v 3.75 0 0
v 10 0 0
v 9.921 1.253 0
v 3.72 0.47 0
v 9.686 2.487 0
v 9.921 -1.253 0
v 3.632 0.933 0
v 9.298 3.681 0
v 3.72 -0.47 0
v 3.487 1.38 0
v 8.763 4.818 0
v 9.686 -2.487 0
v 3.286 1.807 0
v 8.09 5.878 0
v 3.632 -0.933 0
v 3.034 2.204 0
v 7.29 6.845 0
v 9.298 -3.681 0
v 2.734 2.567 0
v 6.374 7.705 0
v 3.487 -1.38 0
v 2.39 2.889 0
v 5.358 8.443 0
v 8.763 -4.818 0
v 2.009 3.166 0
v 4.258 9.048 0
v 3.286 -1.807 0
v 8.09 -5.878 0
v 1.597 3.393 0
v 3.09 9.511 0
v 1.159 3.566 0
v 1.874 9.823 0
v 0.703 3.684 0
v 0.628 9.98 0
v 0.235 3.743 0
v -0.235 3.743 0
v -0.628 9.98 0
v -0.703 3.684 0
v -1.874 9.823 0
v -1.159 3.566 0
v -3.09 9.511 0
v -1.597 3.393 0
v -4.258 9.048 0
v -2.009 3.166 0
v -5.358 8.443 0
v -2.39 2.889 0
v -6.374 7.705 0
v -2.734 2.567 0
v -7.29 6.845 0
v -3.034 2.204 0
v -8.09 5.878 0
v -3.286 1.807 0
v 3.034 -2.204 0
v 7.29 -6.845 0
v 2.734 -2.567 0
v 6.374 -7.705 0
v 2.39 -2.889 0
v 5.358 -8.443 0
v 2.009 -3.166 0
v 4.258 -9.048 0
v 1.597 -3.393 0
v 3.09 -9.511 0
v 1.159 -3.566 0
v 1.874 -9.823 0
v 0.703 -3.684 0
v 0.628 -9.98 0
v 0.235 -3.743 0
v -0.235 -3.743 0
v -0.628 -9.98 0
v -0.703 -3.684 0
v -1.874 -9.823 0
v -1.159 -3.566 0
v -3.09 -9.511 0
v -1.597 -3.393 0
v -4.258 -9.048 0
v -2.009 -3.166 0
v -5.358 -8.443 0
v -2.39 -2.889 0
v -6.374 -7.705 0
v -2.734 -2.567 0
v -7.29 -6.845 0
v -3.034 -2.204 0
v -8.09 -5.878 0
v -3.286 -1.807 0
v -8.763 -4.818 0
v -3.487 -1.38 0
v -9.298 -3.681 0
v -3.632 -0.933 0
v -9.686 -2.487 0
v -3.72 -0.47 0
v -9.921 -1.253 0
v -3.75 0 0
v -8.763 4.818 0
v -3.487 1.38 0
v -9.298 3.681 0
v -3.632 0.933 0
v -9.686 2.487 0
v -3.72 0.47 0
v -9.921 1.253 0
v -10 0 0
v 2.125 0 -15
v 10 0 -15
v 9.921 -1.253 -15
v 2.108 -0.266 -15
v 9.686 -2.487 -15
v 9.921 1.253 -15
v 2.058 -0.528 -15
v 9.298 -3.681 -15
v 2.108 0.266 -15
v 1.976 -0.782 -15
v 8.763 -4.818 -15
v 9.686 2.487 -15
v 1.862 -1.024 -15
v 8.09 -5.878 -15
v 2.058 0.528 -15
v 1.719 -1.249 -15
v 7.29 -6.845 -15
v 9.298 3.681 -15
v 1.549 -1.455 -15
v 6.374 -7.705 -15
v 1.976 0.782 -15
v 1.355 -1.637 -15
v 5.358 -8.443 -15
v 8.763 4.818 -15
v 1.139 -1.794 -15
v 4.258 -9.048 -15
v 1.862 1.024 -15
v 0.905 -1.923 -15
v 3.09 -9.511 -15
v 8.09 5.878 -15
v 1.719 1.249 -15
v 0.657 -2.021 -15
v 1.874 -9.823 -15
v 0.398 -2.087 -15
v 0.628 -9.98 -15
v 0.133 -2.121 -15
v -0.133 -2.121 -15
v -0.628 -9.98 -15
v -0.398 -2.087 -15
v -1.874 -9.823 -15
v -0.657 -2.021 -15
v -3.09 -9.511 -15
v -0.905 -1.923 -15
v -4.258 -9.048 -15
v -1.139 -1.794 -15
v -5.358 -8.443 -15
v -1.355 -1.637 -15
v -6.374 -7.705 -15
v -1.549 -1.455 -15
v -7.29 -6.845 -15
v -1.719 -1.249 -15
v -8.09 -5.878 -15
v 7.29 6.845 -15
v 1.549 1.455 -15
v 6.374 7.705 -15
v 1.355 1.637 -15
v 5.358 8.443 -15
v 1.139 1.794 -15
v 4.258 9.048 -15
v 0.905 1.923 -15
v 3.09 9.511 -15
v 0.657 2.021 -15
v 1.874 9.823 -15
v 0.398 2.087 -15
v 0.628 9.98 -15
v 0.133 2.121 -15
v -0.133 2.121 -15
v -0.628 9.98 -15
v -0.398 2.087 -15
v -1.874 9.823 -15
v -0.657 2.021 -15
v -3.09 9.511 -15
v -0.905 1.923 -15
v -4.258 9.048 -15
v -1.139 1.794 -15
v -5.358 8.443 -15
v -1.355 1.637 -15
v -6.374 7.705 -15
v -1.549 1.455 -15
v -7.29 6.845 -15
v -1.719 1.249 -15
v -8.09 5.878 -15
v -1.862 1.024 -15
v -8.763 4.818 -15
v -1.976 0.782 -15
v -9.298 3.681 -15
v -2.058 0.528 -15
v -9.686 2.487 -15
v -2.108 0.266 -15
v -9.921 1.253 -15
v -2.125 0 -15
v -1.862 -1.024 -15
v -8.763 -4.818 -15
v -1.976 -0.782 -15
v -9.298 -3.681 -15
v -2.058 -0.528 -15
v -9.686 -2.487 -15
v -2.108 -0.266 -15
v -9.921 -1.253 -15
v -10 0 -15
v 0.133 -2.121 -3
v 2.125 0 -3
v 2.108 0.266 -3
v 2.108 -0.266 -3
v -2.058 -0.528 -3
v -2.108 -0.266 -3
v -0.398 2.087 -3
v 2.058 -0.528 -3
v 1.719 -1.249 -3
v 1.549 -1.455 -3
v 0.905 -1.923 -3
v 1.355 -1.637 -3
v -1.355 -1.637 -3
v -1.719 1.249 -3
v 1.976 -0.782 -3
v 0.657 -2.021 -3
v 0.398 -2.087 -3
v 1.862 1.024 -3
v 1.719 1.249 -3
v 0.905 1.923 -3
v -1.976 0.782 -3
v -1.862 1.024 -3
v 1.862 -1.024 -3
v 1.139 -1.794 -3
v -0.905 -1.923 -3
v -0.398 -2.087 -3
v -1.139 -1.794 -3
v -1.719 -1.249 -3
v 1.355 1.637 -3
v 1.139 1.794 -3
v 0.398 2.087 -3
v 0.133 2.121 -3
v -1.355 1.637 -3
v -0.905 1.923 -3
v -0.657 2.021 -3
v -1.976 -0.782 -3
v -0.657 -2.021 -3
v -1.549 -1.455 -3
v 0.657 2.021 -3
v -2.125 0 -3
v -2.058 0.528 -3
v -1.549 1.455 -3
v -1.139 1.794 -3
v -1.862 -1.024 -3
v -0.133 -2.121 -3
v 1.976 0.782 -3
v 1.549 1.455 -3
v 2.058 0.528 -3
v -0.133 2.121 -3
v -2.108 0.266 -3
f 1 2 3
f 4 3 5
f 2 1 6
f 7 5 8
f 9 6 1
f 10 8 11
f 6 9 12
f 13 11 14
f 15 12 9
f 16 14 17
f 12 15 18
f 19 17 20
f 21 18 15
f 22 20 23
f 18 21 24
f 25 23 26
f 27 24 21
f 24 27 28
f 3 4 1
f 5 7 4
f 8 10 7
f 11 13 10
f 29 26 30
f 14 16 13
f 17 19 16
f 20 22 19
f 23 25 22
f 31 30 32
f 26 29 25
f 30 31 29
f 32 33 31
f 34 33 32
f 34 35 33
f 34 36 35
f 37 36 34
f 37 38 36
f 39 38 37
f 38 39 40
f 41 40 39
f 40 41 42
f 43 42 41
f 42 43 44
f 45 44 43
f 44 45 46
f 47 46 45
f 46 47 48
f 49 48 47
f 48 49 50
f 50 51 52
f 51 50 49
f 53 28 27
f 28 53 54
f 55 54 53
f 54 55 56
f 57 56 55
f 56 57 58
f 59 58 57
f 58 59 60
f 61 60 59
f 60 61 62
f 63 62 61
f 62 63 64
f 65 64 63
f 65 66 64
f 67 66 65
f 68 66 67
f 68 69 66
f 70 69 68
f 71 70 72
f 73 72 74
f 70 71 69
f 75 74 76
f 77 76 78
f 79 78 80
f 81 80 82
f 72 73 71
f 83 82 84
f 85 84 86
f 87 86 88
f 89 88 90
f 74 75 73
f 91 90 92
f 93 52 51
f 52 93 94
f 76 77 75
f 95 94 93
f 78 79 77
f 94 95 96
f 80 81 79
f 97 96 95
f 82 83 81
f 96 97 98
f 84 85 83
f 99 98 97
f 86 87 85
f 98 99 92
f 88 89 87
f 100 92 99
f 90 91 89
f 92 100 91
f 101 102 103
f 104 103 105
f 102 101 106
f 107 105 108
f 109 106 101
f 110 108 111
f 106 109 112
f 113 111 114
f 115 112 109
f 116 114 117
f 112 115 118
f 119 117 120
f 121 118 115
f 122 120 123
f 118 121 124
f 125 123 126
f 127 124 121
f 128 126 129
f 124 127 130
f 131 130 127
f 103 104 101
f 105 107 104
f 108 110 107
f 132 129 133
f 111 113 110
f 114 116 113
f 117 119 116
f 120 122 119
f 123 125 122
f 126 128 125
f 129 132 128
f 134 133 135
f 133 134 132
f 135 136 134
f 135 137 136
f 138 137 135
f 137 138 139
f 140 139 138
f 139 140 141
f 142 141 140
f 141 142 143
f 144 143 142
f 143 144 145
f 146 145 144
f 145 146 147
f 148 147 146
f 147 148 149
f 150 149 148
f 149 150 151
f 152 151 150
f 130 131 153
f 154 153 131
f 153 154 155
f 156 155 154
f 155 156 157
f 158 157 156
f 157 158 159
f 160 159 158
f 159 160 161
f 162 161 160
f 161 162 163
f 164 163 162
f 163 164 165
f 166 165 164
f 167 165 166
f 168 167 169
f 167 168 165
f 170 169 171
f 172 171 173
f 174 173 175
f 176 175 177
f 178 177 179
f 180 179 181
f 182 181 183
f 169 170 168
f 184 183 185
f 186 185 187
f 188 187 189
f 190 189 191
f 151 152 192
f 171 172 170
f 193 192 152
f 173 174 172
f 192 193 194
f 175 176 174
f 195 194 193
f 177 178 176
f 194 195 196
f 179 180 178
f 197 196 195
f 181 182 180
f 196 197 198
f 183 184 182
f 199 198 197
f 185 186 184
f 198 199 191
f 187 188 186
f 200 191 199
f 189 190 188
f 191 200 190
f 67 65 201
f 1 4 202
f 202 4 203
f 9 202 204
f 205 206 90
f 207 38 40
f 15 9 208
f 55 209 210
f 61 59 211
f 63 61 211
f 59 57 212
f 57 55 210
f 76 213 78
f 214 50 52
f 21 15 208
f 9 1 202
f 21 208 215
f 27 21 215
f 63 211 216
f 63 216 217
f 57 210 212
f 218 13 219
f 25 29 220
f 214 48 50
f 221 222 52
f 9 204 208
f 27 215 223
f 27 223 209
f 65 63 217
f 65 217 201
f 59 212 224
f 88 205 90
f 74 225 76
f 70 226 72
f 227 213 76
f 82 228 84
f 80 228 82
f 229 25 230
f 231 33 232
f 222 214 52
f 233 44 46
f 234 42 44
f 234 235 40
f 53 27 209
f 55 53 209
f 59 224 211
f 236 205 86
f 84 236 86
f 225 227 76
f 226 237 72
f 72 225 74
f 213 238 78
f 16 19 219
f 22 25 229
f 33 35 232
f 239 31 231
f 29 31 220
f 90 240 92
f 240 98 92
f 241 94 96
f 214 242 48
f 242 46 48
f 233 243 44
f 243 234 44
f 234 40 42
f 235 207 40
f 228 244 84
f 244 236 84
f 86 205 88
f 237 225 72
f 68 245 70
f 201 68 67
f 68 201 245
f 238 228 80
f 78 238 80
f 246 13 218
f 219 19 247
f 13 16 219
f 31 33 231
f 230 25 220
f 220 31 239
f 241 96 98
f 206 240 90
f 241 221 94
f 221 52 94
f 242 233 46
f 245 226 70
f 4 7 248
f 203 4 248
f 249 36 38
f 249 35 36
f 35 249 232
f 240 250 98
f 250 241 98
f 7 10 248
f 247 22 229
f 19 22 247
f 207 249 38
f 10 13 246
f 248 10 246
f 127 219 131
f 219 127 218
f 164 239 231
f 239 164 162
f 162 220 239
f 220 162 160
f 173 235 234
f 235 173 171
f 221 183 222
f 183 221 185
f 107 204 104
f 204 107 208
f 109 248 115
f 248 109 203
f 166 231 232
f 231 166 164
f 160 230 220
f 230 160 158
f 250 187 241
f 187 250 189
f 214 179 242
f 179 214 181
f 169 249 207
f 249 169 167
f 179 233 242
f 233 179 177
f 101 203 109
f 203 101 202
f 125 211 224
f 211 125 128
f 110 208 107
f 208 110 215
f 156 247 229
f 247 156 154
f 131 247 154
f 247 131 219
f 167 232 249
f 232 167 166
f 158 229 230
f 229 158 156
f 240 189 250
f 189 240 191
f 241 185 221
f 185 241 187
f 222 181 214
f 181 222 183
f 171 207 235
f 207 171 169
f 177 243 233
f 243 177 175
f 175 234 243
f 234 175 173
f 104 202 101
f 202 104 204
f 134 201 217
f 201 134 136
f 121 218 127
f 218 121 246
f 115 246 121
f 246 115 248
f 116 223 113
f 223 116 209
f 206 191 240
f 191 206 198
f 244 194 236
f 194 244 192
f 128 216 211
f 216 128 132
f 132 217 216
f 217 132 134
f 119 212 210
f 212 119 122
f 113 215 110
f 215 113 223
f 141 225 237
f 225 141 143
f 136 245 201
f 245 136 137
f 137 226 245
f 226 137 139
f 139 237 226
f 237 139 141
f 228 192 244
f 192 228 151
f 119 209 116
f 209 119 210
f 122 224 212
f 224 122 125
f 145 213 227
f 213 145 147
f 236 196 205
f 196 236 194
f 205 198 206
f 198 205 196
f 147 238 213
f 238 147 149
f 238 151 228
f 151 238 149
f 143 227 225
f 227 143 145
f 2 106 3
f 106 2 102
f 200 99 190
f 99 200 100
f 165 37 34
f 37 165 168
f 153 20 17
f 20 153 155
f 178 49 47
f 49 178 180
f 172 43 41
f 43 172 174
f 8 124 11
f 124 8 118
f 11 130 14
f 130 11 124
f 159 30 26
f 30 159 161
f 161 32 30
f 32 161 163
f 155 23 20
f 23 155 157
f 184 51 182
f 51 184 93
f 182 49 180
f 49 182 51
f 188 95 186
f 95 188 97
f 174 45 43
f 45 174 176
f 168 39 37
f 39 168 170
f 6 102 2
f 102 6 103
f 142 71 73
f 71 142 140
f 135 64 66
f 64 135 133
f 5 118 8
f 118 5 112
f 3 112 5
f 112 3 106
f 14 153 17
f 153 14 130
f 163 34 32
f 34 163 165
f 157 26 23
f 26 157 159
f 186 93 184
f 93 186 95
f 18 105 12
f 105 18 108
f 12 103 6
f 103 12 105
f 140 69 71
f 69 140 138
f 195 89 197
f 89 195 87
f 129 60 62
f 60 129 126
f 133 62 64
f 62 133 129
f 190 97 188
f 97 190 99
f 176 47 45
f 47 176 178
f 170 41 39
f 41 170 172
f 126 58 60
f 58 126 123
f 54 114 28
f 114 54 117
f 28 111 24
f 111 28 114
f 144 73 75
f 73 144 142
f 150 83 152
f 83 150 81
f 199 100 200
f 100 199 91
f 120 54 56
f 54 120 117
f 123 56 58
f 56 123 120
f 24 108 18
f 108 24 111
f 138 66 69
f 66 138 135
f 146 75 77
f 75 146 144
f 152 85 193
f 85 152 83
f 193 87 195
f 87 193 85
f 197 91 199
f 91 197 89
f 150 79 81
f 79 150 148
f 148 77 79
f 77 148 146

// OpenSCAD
$fn = 50;


difference() {
	union() {
		translate(v = [0, 0, -15.0000000000]) {
			cylinder(h = 15, r = 10.0000000000);
		}
		cylinder(h = 0, r = 16.0000000000);
	}
	union() {
		translate(v = [0, 0, 0]) {
			rotate(a = [0, 0, 0]) {
				difference() {
					union() {
						#translate(v = [0, 0, -15.0000000000]) {
							cylinder(h = 15, r = 2.0000000000);
						}
						#translate(v = [0, 0, -3]) {
							cylinder(h = 3, r1 = 2.1250000000, r2 = 3.7500000000);
						}
						#translate(v = [0, 0, -15.0000000000]) {
							cylinder(h = 15, r = 2.1250000000);
						}
						#translate(v = [0, 0, -15.0000000000]) {
							cylinder(h = 15, r = 2.0000000000);
						}
					}
					union();
				}
			}
		}
	}
}
